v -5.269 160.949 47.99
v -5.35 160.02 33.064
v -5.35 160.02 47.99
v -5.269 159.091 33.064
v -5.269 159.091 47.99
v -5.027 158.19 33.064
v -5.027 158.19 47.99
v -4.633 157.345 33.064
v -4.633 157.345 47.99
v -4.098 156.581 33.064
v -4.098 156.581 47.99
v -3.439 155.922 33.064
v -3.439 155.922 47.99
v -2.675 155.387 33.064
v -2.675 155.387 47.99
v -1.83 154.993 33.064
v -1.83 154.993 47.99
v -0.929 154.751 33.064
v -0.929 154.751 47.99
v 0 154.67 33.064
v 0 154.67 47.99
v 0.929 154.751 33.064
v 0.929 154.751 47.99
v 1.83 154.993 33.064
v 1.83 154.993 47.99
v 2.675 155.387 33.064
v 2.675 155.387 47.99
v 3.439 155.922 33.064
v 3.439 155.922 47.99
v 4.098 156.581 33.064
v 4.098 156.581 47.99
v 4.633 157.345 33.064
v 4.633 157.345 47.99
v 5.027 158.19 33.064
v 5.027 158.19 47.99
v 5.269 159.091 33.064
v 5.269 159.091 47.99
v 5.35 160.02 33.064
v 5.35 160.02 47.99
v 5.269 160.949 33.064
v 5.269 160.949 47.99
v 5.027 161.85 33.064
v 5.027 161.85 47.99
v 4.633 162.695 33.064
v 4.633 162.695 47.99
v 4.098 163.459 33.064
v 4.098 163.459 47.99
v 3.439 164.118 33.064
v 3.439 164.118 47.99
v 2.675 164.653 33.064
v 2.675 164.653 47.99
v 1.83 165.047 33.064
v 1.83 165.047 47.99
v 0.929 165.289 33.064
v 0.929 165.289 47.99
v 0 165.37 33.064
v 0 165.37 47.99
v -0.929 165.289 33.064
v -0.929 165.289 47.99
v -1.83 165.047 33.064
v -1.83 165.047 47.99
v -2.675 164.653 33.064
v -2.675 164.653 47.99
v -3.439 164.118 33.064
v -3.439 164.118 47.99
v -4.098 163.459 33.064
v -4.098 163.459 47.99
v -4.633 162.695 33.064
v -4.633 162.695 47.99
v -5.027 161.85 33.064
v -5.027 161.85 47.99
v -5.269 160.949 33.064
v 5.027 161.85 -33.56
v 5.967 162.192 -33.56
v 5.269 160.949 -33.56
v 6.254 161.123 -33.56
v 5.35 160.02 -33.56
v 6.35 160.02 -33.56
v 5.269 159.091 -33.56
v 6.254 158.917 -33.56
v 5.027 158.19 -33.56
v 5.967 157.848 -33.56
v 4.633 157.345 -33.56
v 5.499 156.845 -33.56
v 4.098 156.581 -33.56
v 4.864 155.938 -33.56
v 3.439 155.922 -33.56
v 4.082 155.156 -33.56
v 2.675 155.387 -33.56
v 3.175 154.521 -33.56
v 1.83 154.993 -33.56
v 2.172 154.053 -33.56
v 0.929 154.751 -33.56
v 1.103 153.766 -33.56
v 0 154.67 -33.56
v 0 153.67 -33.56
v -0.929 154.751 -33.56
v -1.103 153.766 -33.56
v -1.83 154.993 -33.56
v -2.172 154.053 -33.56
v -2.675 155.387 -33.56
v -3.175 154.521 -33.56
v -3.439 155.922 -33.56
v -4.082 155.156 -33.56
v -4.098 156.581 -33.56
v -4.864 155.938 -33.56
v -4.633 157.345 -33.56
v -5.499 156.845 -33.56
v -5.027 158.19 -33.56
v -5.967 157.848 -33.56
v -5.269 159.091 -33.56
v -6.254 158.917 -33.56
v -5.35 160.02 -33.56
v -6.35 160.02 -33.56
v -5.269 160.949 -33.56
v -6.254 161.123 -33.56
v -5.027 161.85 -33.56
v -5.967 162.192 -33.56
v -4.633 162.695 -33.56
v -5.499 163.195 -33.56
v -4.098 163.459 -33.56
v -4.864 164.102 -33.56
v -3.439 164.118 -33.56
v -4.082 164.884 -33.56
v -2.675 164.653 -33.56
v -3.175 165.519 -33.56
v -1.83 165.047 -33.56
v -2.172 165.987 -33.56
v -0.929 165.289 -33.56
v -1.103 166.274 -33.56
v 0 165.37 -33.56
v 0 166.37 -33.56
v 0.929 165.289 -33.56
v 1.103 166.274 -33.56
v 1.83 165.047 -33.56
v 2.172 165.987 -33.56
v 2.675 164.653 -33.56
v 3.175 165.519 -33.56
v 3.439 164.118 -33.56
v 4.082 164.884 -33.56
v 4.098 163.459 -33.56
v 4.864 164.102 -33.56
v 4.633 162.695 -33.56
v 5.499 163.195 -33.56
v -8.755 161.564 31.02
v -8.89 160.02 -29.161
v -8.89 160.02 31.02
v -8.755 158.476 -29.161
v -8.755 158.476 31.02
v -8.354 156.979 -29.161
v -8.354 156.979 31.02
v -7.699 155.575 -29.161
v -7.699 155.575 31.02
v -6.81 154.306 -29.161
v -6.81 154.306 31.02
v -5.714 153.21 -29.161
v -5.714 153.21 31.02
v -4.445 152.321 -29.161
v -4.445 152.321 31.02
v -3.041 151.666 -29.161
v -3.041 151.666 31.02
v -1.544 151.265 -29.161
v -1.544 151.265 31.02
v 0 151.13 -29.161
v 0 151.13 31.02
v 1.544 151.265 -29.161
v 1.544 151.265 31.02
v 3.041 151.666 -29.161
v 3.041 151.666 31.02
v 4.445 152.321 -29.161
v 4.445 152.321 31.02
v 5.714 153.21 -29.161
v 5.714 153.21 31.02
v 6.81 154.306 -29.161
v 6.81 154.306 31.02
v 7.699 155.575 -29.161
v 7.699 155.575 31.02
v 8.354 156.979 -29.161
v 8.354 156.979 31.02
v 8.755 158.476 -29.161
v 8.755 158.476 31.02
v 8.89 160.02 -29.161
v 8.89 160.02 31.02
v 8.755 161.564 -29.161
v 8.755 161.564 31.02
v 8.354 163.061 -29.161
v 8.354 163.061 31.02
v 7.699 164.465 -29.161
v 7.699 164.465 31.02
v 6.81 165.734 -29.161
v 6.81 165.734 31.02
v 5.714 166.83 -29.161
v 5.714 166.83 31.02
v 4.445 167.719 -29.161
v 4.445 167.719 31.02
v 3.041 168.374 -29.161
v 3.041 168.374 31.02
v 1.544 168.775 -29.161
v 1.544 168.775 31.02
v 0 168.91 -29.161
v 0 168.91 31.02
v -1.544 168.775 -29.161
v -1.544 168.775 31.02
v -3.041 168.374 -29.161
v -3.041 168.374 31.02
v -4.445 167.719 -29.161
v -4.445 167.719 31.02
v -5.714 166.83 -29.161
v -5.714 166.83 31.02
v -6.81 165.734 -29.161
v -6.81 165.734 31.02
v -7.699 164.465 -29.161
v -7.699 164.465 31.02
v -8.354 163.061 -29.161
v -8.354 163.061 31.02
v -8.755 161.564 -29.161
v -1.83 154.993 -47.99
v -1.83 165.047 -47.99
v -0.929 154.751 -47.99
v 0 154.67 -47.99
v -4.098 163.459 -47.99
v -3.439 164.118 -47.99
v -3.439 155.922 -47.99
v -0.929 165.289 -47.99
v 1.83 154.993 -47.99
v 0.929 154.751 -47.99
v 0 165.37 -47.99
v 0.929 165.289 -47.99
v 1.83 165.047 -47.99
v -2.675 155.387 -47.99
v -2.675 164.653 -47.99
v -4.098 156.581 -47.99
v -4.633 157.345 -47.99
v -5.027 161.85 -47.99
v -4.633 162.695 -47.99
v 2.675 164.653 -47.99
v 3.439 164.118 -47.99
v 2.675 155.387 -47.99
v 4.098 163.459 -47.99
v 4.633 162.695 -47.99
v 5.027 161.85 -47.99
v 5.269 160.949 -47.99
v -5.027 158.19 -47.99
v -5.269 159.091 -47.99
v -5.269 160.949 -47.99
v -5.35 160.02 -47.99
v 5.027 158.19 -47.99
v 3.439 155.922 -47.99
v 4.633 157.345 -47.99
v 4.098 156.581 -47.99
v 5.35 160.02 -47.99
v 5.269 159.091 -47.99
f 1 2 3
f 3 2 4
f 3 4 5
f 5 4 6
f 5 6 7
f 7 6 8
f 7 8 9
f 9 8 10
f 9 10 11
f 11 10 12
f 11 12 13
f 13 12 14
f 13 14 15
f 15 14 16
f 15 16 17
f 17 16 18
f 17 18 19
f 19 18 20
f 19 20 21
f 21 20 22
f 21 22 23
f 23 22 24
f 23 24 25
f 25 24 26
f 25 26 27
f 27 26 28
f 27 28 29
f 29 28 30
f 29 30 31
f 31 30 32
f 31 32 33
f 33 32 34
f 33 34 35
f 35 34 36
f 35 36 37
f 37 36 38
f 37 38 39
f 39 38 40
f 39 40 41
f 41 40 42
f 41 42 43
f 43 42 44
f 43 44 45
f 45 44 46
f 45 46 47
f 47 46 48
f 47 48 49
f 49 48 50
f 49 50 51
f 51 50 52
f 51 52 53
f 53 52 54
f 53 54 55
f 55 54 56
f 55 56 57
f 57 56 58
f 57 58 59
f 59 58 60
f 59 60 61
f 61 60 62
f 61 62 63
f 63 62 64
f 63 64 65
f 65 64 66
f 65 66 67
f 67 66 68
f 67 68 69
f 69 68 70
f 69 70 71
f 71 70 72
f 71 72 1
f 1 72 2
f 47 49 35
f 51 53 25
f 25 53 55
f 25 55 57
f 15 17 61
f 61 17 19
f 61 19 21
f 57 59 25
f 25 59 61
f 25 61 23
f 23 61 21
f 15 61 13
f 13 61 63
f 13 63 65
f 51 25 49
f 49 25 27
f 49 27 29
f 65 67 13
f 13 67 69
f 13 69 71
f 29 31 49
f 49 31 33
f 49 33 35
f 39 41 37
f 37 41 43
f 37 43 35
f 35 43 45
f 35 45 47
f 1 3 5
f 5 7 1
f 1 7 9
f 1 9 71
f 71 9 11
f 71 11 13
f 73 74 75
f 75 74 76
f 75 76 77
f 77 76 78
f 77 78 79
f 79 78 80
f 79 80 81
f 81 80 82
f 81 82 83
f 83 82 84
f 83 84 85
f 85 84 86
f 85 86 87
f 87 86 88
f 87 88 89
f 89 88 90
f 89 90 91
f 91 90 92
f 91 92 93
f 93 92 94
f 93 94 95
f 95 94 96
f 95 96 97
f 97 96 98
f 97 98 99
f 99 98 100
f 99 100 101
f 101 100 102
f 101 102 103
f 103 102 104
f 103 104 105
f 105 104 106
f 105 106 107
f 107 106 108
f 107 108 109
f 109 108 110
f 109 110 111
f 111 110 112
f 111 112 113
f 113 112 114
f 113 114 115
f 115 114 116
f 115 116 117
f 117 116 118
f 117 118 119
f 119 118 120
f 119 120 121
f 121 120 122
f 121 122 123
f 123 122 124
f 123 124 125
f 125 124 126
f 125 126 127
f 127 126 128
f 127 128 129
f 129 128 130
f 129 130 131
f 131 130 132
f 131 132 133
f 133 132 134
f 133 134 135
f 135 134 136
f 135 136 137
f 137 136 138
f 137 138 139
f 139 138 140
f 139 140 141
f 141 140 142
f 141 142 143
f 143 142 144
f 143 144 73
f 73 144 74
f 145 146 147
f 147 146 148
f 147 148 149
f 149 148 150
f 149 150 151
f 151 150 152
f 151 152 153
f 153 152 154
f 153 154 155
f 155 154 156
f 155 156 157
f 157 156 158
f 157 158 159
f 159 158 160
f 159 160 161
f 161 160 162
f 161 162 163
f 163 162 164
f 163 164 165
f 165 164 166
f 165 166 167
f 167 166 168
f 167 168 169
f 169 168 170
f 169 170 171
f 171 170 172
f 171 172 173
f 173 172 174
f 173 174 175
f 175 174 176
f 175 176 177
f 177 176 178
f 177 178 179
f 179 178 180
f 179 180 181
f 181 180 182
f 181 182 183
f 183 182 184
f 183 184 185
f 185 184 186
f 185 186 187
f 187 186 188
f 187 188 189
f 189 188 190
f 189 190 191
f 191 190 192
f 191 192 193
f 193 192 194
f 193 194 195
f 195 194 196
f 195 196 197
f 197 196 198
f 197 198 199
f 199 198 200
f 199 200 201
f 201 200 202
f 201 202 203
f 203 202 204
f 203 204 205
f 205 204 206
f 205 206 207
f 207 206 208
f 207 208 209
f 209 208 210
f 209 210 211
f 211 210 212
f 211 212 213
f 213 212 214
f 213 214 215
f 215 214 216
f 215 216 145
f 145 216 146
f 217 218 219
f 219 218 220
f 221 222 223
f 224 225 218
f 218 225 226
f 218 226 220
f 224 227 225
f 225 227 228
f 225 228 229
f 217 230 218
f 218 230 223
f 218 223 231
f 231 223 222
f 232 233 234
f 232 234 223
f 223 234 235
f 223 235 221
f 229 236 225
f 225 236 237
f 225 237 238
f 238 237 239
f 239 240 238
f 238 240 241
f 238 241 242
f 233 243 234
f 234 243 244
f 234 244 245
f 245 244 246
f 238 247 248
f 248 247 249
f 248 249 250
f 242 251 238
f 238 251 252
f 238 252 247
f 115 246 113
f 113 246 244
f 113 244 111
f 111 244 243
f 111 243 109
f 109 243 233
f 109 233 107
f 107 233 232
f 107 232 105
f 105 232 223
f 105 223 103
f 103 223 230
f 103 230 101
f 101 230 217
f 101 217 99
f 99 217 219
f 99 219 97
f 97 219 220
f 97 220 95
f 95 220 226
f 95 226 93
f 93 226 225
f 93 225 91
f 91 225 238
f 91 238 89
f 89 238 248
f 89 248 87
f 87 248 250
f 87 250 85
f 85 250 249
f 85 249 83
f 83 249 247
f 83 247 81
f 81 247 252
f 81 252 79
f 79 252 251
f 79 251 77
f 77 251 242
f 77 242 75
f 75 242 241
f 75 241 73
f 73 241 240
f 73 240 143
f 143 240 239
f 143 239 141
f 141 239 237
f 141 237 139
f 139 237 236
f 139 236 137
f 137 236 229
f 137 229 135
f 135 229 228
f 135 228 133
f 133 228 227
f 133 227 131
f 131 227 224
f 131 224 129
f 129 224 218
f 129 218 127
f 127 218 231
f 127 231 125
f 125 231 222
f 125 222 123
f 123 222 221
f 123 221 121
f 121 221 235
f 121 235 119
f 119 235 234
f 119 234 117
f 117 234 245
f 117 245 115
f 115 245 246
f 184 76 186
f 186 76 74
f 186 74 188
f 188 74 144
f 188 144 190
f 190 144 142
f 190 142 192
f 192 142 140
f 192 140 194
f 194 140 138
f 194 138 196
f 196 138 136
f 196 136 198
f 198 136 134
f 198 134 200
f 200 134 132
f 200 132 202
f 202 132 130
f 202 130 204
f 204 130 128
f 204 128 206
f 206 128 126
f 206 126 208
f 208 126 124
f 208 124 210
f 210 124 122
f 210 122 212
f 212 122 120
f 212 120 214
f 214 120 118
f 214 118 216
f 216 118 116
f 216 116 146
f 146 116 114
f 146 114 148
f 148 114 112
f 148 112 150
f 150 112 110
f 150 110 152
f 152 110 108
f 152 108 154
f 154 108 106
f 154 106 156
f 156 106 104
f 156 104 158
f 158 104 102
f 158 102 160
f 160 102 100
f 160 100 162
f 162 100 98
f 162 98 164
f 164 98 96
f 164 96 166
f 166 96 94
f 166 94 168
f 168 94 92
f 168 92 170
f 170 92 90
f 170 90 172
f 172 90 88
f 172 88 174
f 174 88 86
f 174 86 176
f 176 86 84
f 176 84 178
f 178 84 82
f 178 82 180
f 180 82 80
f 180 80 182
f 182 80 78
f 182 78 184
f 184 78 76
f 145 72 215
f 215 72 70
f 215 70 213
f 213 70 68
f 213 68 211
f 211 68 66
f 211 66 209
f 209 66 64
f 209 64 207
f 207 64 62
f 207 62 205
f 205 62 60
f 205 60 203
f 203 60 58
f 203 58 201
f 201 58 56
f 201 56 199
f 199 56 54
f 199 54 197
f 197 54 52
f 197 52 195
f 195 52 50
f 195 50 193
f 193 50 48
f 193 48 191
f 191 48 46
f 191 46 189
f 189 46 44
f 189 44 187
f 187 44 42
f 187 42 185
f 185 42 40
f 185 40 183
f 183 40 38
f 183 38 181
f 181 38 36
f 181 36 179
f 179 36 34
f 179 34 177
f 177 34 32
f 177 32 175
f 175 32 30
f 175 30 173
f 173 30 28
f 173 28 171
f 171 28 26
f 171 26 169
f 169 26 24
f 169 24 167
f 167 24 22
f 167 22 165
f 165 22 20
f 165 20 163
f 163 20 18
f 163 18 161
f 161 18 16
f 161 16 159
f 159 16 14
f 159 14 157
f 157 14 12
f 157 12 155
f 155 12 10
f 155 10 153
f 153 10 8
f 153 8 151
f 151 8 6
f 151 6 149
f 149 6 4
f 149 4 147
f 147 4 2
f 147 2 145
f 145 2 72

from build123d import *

# Parameters (mm, degrees)
BOSS_EXTRUDE1_DEPTH      = 47.99
BOSS_EXTRUDE1_DEPTH_BACK = 47.99
SKETCH2_R                = 5.35
BOSS_EXTRUDE2_DEPTH      = 33.56
BOSS_EXTRUDE2_DEPTH_BACK = 33.56
SKETCH3_R                = 8.89
CHAMFER1_SIZE            = 4.399409051
CHAMFER1_SIZE_2          = 2.54


with BuildPart() as part:
    # Sketch2 → Boss-Extrude1 (new, two sides: drawn at the far end of the back side and taken through both)
    with BuildSketch(Plane.XY.offset(-BOSS_EXTRUDE1_DEPTH_BACK)):
        with Locations(Location((0, 160.02, 0), (0, 0, 180))):
            Circle(SKETCH2_R)
    extrude(amount=BOSS_EXTRUDE1_DEPTH + BOSS_EXTRUDE1_DEPTH_BACK)

    # Sketch3 → Boss-Extrude2 (add, two sides: drawn at the far end of the back side and taken through both)
    with BuildSketch(Plane.XY.offset(-BOSS_EXTRUDE2_DEPTH_BACK)):
        with Locations(Location((0, 160.02, 0), (0, 0, 180))):
            Circle(SKETCH3_R)
    extrude(amount=BOSS_EXTRUDE2_DEPTH + BOSS_EXTRUDE2_DEPTH_BACK)

    # Chamfer1
    # the kernel refuses this chamfer: 4.399409051, 2.54 mm, written as the material it takes off along each edge
    with BuildSketch(Plane(origin=(0, 160.02, -33.56), x_dir=(-1, 0, 0), z_dir=(0, 1, 0))) as chamfer1_piece_1:
        Polygon((8.89, CHAMFER1_SIZE), (8.89 - CHAMFER1_SIZE_2, 0), (8.89, 0), align=None)
    revolve(axis=Axis((0, 160.02, -33.56), (0, 0, 1)), mode=Mode.SUBTRACT)
    with BuildSketch(Plane(origin=(0, 160.02, 33.56), x_dir=(-1, 0, 0), z_dir=(0, 1, 0))) as chamfer1_piece_2_section:
        Polygon((8.89 - CHAMFER1_SIZE, 0), (8.89, -CHAMFER1_SIZE_2), (8.89, 0), align=None)
    chamfer1_piece_2 = revolve(axis=Axis((0, 160.02, 33.56), (0, 0, 1)), mode=Mode.PRIVATE)
    chamfer1_piece_2 = chamfer1_piece_2 - Plane(origin=(0, 160.02, 32.054862078), x_dir=(-1, 0, 0), z_dir=(0, 0, -1)) * Cylinder(5.35, 36, mode=Mode.PRIVATE)
    add(chamfer1_piece_2, mode=Mode.SUBTRACT)


solid = part.part
